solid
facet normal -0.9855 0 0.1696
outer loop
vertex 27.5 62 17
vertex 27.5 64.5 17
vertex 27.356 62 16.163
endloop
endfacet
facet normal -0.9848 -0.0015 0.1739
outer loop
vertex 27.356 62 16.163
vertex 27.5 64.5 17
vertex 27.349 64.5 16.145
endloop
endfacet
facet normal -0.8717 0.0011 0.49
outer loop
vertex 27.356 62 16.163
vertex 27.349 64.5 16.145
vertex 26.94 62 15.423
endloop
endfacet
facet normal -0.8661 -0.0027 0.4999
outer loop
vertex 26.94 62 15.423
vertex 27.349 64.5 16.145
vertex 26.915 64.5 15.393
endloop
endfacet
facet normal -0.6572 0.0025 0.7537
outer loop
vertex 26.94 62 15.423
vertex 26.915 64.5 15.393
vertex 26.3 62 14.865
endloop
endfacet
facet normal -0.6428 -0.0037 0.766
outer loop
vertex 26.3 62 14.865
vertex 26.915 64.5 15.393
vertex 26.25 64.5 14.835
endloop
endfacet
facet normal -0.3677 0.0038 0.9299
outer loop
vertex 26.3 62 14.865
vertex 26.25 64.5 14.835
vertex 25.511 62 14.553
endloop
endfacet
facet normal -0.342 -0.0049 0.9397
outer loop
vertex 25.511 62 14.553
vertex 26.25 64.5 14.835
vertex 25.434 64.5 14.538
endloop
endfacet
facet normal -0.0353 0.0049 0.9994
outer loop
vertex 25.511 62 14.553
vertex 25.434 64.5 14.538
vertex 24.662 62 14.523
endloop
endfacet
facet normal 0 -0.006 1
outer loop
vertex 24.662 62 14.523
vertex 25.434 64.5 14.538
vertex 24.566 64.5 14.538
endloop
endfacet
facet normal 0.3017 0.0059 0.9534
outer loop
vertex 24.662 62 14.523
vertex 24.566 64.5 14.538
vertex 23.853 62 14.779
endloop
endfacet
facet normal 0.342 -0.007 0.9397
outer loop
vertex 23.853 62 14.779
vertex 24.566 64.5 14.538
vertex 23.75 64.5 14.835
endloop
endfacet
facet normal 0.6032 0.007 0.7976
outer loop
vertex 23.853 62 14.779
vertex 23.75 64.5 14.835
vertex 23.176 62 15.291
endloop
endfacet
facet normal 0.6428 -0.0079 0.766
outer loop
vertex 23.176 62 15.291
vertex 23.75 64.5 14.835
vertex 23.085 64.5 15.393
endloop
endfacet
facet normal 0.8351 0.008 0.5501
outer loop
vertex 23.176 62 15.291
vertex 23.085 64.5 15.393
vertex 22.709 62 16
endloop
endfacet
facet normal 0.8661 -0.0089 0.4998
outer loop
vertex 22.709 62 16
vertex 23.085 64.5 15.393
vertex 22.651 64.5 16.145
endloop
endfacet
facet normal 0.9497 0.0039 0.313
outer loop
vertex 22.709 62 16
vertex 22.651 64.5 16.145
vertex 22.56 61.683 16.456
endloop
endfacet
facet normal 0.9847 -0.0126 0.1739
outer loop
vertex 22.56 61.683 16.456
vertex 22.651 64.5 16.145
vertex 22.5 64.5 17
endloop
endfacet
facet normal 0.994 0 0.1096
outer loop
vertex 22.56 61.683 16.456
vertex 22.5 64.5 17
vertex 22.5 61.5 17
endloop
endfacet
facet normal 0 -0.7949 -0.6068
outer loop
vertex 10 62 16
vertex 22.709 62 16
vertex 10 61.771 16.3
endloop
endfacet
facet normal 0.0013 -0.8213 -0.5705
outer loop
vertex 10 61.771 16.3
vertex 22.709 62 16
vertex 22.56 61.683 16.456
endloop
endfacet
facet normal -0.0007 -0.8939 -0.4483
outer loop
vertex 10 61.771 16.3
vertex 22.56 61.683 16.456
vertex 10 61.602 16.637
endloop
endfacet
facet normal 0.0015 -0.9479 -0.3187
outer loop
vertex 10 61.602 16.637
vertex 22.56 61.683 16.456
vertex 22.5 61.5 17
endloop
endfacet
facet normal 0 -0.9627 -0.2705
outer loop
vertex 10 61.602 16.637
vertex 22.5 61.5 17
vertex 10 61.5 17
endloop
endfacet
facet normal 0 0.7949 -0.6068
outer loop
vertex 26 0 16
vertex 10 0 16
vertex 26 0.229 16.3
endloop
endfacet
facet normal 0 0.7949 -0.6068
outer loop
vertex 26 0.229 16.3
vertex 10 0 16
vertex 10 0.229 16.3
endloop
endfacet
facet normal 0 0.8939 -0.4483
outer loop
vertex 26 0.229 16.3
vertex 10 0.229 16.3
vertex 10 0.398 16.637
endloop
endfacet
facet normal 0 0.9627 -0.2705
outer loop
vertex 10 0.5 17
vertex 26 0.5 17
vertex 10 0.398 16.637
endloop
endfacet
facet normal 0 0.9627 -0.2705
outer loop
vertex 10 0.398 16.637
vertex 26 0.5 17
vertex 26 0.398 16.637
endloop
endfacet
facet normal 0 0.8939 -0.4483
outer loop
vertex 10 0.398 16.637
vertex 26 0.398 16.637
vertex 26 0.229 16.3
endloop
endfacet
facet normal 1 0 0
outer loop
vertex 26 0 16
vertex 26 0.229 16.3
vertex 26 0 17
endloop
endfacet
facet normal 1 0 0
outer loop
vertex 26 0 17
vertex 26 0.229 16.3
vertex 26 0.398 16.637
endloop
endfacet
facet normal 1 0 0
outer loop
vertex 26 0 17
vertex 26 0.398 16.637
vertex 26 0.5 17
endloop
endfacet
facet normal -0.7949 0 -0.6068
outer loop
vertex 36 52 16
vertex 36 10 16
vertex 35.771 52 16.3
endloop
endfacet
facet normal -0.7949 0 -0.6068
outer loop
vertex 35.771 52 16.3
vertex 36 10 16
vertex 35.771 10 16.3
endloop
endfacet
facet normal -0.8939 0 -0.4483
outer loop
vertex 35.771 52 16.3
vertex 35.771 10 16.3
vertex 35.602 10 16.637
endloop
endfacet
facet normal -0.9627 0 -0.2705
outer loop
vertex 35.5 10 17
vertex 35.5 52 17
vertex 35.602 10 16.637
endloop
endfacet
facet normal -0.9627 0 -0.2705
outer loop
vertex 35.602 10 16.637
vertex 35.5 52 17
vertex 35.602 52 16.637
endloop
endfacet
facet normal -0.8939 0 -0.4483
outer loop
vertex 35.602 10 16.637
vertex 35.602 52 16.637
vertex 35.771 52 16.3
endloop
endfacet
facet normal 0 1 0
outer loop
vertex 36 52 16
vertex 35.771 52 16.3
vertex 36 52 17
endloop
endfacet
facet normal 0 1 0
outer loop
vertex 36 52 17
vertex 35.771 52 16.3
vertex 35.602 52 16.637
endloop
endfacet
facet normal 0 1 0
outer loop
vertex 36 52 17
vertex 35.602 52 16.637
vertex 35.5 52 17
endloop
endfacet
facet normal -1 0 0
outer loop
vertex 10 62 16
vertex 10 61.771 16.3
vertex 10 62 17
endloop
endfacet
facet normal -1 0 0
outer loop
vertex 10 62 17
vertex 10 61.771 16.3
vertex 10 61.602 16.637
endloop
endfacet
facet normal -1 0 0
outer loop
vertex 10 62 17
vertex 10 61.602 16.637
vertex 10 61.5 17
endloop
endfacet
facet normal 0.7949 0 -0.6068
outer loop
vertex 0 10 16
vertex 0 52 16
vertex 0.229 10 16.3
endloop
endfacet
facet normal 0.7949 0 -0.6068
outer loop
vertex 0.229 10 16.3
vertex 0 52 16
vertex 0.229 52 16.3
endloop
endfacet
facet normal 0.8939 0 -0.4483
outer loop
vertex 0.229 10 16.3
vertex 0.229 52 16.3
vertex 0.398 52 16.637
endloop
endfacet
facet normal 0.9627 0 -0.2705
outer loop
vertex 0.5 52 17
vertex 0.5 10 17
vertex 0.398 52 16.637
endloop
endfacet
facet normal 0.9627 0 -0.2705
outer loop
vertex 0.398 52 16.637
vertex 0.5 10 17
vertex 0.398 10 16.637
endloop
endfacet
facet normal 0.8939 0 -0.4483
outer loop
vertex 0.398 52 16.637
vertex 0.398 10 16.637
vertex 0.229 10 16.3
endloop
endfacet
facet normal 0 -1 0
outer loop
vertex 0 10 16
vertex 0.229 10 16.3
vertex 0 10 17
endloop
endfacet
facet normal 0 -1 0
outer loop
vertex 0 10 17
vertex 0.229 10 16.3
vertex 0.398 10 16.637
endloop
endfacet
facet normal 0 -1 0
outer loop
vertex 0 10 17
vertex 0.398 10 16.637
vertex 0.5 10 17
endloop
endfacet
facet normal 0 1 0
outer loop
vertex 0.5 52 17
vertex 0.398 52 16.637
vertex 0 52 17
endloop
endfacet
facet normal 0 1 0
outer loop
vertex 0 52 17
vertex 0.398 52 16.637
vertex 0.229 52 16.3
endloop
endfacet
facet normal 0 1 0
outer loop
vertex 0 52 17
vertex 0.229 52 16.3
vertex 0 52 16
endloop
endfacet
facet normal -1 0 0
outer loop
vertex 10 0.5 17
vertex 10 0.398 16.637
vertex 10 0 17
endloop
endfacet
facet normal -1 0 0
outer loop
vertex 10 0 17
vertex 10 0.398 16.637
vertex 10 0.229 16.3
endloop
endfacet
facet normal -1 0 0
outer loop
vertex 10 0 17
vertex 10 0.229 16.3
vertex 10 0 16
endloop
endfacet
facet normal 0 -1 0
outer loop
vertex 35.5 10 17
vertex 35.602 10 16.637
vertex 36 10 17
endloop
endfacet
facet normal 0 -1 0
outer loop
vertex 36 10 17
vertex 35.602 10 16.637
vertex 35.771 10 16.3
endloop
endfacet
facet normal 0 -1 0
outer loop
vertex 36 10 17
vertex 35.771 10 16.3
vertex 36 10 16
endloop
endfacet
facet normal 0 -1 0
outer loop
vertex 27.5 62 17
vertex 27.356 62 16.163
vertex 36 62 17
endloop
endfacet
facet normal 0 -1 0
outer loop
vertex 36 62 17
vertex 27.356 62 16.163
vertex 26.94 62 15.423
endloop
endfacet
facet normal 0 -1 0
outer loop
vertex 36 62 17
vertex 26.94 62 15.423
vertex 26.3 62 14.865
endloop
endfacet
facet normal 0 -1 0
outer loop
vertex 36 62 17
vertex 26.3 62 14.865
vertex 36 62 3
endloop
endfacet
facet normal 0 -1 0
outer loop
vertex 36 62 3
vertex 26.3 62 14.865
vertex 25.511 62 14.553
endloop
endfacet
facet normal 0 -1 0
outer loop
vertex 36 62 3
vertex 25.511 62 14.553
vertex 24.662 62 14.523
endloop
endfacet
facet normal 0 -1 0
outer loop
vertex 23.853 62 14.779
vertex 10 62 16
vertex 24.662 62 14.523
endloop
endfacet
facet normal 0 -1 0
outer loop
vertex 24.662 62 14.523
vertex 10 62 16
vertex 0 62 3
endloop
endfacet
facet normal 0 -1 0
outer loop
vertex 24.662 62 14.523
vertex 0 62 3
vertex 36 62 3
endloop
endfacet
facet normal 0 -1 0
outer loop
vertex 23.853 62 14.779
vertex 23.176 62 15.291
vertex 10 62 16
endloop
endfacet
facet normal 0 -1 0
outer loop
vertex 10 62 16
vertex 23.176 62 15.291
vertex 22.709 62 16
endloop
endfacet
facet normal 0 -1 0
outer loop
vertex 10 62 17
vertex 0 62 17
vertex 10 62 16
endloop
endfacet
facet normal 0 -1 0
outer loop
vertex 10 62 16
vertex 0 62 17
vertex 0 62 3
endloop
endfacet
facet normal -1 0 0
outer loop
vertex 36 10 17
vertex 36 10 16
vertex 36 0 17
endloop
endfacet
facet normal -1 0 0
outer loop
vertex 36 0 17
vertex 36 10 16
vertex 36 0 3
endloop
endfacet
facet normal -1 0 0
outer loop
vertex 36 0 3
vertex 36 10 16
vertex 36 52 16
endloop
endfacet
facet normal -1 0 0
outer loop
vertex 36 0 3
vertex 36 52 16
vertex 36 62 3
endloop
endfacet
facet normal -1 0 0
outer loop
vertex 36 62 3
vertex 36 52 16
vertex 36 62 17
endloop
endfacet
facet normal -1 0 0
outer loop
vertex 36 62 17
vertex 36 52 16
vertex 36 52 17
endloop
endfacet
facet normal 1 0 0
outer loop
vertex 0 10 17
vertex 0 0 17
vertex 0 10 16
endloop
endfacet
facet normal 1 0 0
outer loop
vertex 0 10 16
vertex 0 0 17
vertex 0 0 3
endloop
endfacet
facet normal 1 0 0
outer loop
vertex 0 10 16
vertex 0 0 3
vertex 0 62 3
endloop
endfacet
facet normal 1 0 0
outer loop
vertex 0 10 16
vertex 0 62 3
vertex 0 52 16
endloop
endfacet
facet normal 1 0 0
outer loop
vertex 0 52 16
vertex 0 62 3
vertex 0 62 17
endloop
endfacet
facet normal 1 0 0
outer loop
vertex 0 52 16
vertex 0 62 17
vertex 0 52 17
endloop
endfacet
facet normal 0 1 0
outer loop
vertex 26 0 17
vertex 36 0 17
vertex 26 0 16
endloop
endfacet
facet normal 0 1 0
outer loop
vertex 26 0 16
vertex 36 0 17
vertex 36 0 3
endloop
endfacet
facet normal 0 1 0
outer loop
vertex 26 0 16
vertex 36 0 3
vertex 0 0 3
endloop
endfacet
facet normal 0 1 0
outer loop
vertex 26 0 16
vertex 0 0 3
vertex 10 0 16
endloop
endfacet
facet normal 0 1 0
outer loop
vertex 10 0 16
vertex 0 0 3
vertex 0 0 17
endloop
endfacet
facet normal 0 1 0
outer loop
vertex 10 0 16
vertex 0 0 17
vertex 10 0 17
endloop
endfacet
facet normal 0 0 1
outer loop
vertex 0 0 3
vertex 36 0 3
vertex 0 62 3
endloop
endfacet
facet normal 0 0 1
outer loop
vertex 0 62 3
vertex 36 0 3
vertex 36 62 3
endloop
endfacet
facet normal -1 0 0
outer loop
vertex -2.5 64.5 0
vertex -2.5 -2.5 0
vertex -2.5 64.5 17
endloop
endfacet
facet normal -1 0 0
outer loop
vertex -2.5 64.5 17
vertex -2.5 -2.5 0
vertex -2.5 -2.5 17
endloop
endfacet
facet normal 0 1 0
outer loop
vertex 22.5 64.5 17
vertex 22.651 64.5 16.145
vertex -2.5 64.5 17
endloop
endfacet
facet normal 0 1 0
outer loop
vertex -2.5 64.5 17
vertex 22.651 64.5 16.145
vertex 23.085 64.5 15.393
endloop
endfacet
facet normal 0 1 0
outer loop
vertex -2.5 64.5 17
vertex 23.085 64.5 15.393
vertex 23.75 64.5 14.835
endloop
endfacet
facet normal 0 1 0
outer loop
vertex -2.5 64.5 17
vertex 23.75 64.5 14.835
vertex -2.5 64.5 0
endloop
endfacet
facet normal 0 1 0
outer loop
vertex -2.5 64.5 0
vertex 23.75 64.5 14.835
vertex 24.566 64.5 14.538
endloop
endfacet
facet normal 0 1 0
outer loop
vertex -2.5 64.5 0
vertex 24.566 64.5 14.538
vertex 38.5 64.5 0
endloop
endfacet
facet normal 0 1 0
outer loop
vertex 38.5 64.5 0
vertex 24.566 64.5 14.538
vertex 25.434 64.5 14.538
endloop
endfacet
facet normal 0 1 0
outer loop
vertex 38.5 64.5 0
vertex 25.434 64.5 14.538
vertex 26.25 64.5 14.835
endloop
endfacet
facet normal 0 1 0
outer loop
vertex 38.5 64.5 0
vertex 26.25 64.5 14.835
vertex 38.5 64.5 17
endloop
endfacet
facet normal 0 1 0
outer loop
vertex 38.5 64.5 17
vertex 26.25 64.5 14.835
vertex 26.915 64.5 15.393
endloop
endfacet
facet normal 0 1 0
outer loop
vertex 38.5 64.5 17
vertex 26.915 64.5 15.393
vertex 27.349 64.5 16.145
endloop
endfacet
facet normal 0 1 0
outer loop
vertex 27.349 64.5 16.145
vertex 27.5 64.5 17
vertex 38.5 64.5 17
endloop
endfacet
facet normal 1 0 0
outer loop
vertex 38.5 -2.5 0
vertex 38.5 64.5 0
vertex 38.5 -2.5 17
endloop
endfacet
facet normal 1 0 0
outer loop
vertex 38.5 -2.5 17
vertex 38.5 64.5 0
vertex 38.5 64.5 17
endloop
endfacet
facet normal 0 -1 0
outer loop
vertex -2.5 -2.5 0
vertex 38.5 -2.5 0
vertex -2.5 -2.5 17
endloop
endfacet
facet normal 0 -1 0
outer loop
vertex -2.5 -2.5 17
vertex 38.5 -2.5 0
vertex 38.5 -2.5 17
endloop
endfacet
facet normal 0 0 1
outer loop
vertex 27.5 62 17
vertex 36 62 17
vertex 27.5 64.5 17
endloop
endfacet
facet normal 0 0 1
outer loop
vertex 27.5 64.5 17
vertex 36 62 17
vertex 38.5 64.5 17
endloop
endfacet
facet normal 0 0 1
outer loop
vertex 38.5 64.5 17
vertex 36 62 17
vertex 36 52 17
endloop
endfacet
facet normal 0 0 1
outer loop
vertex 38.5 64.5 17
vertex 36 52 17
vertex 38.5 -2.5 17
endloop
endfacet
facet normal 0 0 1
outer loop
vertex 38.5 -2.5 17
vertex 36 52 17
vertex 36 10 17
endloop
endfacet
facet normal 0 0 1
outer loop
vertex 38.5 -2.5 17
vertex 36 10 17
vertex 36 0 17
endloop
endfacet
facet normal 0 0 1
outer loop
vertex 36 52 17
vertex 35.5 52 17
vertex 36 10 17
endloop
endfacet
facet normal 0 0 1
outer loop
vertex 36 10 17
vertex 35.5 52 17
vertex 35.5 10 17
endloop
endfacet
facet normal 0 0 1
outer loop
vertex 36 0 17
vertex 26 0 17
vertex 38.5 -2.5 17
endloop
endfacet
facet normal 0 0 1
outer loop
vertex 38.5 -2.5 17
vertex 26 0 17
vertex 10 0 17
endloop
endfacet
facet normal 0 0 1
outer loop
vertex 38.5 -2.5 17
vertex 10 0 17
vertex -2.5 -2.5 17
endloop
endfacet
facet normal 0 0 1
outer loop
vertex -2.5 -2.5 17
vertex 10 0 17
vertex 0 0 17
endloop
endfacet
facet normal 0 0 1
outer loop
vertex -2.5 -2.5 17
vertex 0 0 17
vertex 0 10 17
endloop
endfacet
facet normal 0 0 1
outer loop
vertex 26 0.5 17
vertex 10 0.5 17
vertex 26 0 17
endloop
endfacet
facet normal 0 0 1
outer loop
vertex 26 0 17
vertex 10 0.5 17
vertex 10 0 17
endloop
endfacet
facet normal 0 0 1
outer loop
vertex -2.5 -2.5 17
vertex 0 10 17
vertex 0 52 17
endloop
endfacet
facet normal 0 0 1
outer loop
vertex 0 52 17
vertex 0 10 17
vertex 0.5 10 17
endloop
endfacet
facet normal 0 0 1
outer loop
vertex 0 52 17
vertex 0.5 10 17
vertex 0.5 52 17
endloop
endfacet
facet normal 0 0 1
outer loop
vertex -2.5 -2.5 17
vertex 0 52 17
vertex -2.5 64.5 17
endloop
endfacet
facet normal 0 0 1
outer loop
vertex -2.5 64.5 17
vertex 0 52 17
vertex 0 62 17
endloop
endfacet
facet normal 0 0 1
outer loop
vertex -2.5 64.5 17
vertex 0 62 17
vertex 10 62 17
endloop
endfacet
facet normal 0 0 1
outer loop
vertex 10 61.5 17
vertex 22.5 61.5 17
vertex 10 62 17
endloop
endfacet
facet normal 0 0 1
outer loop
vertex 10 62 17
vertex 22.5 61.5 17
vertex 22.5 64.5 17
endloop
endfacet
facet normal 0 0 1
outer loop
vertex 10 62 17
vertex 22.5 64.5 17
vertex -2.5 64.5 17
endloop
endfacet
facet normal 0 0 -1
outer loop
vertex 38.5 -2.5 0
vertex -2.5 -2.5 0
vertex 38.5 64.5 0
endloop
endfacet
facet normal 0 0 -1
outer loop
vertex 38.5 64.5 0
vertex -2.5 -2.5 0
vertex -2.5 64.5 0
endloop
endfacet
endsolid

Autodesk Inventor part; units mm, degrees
ref_plane "YZ Plane" through (0, 0, 0) normal (1, 0, 0) x (0, 1, 0)
ref_plane "XZ Plane" through (0, 0, 0) normal (0, 1, 0) x (-1, 0, 0)
ref_plane "XY Plane" through (0, 0, 0) normal (0, 0, 1) x (1, 0, 0)
sketch "Sketch1" plane through (0, 0, 0) normal (0, 0, 1) x (1, 0, 0)
  line L0 (0, 0) -> (36, 0)
  line L1 (36, 0) -> (36, 62)
  line L2 (36, 62) -> (0, 62)
  line L3 (0, 62) -> (0, 0)
  line L4 (-2.5, -2.5) -> (38.5, -2.5)
  line L5 (38.5, -2.5) -> (38.5, 64.5)
  line L6 (38.5, 64.5) -> (-2.5, 64.5)
  line L7 (-2.5, 64.5) -> (-2.5, -2.5)
  dimension "d0" = 36
  dimension "d1" = 62
  dimension "d2" = 2.5
extrude "Extrusion1" add sketch "Sketch1" along normal blind 17 contours L3 L2 L1 L0 | L7 L6 L5 L4
sketch "Sketch2" plane through (0, 0, 17) normal (0, 0, 1) x (1, 0, 0)
  line L0 (-2.5, -2.5) -> (38.5, -2.5) projected
  line L1 (38.5, -2.5) -> (38.5, 64.5) projected
  line L2 (38.5, 64.5) -> (-2.5, 64.5) projected
  line L3 (-2.5, 64.5) -> (-2.5, -2.5) projected
  line L4 (0, 0) -> (36, 0)
  line L5 (36, 0) -> (36, 62)
  line L6 (36, 62) -> (0, 62)
  line L7 (0, 62) -> (0, 0)
  point P0 (0, 0)
  dimension "d5" = 2.5
extrude "Extrusion2" cut sketch "Sketch2" against normal blind 14 contours L7 L6 L5 L4
sketch "Sketch3" plane through (0, 0, 17) normal (0, 0, 1) x (1, 0, 0)
  line L0 (36, 0) -> (0, 0) projected
  line L1 (36, 62) -> (36, 0) projected
  line L2 (0, 62) -> (36, 62) projected
  line L3 (0, 0) -> (0, 62) projected
  line L4 (10, 61.5) -> (26, 61.5)
  line L5 (35.5, 52) -> (35.5, 10)
  line L6 (26, 0.5) -> (10, 0.5)
  line L7 (0.5, 10) -> (0.5, 52)
  line L8 (0, 52) -> (0.5, 52)
  line L9 (35.5, 52) -> (36, 52)
  line L10 (10, 61.5) -> (10, 62)
  line L11 (26, 62) -> (26, 61.5)
  line L12 (36, 10) -> (35.5, 10)
  line L13 (26, 0.5) -> (26, 0)
  line L14 (10, 0) -> (10, 0.5)
  line L15 (0.5, 10) -> (0, 10)
  point P0 (0, 0)
  dimension "d9" = 0.5
extrude "Extrusion3" add sketch "Sketch3" against normal blind 1 contours L0 L14 L6 L13 | L12 L5 L9 L1 | L3 L8 L7 L15 | L11 L4 L10 L2
fillet "Fillet1" radius 2 4 edges at (0.5, 31, 16) (18, 61.5, 16) (35.5, 31, 16) (18, 0.5, 16)
sketch "Sketch4" plane through (-2.5, 64.5, 0) normal (0, 1, 0) x (1, 0, 0)
  line L0 (41, -17) -> (0, -17) projected
  line L1 (20.5, -17) -> (27.5, -17)
  circle A0 centre (27.5, -17) radius 2.5
  point P0 (2.5, 0)
  dimension "d13" = 7
  dimension "d14" = 5
extrude "Extrusion4" cut sketch "Sketch4" against normal blind 4
properties part number "feeder_encolsure"
